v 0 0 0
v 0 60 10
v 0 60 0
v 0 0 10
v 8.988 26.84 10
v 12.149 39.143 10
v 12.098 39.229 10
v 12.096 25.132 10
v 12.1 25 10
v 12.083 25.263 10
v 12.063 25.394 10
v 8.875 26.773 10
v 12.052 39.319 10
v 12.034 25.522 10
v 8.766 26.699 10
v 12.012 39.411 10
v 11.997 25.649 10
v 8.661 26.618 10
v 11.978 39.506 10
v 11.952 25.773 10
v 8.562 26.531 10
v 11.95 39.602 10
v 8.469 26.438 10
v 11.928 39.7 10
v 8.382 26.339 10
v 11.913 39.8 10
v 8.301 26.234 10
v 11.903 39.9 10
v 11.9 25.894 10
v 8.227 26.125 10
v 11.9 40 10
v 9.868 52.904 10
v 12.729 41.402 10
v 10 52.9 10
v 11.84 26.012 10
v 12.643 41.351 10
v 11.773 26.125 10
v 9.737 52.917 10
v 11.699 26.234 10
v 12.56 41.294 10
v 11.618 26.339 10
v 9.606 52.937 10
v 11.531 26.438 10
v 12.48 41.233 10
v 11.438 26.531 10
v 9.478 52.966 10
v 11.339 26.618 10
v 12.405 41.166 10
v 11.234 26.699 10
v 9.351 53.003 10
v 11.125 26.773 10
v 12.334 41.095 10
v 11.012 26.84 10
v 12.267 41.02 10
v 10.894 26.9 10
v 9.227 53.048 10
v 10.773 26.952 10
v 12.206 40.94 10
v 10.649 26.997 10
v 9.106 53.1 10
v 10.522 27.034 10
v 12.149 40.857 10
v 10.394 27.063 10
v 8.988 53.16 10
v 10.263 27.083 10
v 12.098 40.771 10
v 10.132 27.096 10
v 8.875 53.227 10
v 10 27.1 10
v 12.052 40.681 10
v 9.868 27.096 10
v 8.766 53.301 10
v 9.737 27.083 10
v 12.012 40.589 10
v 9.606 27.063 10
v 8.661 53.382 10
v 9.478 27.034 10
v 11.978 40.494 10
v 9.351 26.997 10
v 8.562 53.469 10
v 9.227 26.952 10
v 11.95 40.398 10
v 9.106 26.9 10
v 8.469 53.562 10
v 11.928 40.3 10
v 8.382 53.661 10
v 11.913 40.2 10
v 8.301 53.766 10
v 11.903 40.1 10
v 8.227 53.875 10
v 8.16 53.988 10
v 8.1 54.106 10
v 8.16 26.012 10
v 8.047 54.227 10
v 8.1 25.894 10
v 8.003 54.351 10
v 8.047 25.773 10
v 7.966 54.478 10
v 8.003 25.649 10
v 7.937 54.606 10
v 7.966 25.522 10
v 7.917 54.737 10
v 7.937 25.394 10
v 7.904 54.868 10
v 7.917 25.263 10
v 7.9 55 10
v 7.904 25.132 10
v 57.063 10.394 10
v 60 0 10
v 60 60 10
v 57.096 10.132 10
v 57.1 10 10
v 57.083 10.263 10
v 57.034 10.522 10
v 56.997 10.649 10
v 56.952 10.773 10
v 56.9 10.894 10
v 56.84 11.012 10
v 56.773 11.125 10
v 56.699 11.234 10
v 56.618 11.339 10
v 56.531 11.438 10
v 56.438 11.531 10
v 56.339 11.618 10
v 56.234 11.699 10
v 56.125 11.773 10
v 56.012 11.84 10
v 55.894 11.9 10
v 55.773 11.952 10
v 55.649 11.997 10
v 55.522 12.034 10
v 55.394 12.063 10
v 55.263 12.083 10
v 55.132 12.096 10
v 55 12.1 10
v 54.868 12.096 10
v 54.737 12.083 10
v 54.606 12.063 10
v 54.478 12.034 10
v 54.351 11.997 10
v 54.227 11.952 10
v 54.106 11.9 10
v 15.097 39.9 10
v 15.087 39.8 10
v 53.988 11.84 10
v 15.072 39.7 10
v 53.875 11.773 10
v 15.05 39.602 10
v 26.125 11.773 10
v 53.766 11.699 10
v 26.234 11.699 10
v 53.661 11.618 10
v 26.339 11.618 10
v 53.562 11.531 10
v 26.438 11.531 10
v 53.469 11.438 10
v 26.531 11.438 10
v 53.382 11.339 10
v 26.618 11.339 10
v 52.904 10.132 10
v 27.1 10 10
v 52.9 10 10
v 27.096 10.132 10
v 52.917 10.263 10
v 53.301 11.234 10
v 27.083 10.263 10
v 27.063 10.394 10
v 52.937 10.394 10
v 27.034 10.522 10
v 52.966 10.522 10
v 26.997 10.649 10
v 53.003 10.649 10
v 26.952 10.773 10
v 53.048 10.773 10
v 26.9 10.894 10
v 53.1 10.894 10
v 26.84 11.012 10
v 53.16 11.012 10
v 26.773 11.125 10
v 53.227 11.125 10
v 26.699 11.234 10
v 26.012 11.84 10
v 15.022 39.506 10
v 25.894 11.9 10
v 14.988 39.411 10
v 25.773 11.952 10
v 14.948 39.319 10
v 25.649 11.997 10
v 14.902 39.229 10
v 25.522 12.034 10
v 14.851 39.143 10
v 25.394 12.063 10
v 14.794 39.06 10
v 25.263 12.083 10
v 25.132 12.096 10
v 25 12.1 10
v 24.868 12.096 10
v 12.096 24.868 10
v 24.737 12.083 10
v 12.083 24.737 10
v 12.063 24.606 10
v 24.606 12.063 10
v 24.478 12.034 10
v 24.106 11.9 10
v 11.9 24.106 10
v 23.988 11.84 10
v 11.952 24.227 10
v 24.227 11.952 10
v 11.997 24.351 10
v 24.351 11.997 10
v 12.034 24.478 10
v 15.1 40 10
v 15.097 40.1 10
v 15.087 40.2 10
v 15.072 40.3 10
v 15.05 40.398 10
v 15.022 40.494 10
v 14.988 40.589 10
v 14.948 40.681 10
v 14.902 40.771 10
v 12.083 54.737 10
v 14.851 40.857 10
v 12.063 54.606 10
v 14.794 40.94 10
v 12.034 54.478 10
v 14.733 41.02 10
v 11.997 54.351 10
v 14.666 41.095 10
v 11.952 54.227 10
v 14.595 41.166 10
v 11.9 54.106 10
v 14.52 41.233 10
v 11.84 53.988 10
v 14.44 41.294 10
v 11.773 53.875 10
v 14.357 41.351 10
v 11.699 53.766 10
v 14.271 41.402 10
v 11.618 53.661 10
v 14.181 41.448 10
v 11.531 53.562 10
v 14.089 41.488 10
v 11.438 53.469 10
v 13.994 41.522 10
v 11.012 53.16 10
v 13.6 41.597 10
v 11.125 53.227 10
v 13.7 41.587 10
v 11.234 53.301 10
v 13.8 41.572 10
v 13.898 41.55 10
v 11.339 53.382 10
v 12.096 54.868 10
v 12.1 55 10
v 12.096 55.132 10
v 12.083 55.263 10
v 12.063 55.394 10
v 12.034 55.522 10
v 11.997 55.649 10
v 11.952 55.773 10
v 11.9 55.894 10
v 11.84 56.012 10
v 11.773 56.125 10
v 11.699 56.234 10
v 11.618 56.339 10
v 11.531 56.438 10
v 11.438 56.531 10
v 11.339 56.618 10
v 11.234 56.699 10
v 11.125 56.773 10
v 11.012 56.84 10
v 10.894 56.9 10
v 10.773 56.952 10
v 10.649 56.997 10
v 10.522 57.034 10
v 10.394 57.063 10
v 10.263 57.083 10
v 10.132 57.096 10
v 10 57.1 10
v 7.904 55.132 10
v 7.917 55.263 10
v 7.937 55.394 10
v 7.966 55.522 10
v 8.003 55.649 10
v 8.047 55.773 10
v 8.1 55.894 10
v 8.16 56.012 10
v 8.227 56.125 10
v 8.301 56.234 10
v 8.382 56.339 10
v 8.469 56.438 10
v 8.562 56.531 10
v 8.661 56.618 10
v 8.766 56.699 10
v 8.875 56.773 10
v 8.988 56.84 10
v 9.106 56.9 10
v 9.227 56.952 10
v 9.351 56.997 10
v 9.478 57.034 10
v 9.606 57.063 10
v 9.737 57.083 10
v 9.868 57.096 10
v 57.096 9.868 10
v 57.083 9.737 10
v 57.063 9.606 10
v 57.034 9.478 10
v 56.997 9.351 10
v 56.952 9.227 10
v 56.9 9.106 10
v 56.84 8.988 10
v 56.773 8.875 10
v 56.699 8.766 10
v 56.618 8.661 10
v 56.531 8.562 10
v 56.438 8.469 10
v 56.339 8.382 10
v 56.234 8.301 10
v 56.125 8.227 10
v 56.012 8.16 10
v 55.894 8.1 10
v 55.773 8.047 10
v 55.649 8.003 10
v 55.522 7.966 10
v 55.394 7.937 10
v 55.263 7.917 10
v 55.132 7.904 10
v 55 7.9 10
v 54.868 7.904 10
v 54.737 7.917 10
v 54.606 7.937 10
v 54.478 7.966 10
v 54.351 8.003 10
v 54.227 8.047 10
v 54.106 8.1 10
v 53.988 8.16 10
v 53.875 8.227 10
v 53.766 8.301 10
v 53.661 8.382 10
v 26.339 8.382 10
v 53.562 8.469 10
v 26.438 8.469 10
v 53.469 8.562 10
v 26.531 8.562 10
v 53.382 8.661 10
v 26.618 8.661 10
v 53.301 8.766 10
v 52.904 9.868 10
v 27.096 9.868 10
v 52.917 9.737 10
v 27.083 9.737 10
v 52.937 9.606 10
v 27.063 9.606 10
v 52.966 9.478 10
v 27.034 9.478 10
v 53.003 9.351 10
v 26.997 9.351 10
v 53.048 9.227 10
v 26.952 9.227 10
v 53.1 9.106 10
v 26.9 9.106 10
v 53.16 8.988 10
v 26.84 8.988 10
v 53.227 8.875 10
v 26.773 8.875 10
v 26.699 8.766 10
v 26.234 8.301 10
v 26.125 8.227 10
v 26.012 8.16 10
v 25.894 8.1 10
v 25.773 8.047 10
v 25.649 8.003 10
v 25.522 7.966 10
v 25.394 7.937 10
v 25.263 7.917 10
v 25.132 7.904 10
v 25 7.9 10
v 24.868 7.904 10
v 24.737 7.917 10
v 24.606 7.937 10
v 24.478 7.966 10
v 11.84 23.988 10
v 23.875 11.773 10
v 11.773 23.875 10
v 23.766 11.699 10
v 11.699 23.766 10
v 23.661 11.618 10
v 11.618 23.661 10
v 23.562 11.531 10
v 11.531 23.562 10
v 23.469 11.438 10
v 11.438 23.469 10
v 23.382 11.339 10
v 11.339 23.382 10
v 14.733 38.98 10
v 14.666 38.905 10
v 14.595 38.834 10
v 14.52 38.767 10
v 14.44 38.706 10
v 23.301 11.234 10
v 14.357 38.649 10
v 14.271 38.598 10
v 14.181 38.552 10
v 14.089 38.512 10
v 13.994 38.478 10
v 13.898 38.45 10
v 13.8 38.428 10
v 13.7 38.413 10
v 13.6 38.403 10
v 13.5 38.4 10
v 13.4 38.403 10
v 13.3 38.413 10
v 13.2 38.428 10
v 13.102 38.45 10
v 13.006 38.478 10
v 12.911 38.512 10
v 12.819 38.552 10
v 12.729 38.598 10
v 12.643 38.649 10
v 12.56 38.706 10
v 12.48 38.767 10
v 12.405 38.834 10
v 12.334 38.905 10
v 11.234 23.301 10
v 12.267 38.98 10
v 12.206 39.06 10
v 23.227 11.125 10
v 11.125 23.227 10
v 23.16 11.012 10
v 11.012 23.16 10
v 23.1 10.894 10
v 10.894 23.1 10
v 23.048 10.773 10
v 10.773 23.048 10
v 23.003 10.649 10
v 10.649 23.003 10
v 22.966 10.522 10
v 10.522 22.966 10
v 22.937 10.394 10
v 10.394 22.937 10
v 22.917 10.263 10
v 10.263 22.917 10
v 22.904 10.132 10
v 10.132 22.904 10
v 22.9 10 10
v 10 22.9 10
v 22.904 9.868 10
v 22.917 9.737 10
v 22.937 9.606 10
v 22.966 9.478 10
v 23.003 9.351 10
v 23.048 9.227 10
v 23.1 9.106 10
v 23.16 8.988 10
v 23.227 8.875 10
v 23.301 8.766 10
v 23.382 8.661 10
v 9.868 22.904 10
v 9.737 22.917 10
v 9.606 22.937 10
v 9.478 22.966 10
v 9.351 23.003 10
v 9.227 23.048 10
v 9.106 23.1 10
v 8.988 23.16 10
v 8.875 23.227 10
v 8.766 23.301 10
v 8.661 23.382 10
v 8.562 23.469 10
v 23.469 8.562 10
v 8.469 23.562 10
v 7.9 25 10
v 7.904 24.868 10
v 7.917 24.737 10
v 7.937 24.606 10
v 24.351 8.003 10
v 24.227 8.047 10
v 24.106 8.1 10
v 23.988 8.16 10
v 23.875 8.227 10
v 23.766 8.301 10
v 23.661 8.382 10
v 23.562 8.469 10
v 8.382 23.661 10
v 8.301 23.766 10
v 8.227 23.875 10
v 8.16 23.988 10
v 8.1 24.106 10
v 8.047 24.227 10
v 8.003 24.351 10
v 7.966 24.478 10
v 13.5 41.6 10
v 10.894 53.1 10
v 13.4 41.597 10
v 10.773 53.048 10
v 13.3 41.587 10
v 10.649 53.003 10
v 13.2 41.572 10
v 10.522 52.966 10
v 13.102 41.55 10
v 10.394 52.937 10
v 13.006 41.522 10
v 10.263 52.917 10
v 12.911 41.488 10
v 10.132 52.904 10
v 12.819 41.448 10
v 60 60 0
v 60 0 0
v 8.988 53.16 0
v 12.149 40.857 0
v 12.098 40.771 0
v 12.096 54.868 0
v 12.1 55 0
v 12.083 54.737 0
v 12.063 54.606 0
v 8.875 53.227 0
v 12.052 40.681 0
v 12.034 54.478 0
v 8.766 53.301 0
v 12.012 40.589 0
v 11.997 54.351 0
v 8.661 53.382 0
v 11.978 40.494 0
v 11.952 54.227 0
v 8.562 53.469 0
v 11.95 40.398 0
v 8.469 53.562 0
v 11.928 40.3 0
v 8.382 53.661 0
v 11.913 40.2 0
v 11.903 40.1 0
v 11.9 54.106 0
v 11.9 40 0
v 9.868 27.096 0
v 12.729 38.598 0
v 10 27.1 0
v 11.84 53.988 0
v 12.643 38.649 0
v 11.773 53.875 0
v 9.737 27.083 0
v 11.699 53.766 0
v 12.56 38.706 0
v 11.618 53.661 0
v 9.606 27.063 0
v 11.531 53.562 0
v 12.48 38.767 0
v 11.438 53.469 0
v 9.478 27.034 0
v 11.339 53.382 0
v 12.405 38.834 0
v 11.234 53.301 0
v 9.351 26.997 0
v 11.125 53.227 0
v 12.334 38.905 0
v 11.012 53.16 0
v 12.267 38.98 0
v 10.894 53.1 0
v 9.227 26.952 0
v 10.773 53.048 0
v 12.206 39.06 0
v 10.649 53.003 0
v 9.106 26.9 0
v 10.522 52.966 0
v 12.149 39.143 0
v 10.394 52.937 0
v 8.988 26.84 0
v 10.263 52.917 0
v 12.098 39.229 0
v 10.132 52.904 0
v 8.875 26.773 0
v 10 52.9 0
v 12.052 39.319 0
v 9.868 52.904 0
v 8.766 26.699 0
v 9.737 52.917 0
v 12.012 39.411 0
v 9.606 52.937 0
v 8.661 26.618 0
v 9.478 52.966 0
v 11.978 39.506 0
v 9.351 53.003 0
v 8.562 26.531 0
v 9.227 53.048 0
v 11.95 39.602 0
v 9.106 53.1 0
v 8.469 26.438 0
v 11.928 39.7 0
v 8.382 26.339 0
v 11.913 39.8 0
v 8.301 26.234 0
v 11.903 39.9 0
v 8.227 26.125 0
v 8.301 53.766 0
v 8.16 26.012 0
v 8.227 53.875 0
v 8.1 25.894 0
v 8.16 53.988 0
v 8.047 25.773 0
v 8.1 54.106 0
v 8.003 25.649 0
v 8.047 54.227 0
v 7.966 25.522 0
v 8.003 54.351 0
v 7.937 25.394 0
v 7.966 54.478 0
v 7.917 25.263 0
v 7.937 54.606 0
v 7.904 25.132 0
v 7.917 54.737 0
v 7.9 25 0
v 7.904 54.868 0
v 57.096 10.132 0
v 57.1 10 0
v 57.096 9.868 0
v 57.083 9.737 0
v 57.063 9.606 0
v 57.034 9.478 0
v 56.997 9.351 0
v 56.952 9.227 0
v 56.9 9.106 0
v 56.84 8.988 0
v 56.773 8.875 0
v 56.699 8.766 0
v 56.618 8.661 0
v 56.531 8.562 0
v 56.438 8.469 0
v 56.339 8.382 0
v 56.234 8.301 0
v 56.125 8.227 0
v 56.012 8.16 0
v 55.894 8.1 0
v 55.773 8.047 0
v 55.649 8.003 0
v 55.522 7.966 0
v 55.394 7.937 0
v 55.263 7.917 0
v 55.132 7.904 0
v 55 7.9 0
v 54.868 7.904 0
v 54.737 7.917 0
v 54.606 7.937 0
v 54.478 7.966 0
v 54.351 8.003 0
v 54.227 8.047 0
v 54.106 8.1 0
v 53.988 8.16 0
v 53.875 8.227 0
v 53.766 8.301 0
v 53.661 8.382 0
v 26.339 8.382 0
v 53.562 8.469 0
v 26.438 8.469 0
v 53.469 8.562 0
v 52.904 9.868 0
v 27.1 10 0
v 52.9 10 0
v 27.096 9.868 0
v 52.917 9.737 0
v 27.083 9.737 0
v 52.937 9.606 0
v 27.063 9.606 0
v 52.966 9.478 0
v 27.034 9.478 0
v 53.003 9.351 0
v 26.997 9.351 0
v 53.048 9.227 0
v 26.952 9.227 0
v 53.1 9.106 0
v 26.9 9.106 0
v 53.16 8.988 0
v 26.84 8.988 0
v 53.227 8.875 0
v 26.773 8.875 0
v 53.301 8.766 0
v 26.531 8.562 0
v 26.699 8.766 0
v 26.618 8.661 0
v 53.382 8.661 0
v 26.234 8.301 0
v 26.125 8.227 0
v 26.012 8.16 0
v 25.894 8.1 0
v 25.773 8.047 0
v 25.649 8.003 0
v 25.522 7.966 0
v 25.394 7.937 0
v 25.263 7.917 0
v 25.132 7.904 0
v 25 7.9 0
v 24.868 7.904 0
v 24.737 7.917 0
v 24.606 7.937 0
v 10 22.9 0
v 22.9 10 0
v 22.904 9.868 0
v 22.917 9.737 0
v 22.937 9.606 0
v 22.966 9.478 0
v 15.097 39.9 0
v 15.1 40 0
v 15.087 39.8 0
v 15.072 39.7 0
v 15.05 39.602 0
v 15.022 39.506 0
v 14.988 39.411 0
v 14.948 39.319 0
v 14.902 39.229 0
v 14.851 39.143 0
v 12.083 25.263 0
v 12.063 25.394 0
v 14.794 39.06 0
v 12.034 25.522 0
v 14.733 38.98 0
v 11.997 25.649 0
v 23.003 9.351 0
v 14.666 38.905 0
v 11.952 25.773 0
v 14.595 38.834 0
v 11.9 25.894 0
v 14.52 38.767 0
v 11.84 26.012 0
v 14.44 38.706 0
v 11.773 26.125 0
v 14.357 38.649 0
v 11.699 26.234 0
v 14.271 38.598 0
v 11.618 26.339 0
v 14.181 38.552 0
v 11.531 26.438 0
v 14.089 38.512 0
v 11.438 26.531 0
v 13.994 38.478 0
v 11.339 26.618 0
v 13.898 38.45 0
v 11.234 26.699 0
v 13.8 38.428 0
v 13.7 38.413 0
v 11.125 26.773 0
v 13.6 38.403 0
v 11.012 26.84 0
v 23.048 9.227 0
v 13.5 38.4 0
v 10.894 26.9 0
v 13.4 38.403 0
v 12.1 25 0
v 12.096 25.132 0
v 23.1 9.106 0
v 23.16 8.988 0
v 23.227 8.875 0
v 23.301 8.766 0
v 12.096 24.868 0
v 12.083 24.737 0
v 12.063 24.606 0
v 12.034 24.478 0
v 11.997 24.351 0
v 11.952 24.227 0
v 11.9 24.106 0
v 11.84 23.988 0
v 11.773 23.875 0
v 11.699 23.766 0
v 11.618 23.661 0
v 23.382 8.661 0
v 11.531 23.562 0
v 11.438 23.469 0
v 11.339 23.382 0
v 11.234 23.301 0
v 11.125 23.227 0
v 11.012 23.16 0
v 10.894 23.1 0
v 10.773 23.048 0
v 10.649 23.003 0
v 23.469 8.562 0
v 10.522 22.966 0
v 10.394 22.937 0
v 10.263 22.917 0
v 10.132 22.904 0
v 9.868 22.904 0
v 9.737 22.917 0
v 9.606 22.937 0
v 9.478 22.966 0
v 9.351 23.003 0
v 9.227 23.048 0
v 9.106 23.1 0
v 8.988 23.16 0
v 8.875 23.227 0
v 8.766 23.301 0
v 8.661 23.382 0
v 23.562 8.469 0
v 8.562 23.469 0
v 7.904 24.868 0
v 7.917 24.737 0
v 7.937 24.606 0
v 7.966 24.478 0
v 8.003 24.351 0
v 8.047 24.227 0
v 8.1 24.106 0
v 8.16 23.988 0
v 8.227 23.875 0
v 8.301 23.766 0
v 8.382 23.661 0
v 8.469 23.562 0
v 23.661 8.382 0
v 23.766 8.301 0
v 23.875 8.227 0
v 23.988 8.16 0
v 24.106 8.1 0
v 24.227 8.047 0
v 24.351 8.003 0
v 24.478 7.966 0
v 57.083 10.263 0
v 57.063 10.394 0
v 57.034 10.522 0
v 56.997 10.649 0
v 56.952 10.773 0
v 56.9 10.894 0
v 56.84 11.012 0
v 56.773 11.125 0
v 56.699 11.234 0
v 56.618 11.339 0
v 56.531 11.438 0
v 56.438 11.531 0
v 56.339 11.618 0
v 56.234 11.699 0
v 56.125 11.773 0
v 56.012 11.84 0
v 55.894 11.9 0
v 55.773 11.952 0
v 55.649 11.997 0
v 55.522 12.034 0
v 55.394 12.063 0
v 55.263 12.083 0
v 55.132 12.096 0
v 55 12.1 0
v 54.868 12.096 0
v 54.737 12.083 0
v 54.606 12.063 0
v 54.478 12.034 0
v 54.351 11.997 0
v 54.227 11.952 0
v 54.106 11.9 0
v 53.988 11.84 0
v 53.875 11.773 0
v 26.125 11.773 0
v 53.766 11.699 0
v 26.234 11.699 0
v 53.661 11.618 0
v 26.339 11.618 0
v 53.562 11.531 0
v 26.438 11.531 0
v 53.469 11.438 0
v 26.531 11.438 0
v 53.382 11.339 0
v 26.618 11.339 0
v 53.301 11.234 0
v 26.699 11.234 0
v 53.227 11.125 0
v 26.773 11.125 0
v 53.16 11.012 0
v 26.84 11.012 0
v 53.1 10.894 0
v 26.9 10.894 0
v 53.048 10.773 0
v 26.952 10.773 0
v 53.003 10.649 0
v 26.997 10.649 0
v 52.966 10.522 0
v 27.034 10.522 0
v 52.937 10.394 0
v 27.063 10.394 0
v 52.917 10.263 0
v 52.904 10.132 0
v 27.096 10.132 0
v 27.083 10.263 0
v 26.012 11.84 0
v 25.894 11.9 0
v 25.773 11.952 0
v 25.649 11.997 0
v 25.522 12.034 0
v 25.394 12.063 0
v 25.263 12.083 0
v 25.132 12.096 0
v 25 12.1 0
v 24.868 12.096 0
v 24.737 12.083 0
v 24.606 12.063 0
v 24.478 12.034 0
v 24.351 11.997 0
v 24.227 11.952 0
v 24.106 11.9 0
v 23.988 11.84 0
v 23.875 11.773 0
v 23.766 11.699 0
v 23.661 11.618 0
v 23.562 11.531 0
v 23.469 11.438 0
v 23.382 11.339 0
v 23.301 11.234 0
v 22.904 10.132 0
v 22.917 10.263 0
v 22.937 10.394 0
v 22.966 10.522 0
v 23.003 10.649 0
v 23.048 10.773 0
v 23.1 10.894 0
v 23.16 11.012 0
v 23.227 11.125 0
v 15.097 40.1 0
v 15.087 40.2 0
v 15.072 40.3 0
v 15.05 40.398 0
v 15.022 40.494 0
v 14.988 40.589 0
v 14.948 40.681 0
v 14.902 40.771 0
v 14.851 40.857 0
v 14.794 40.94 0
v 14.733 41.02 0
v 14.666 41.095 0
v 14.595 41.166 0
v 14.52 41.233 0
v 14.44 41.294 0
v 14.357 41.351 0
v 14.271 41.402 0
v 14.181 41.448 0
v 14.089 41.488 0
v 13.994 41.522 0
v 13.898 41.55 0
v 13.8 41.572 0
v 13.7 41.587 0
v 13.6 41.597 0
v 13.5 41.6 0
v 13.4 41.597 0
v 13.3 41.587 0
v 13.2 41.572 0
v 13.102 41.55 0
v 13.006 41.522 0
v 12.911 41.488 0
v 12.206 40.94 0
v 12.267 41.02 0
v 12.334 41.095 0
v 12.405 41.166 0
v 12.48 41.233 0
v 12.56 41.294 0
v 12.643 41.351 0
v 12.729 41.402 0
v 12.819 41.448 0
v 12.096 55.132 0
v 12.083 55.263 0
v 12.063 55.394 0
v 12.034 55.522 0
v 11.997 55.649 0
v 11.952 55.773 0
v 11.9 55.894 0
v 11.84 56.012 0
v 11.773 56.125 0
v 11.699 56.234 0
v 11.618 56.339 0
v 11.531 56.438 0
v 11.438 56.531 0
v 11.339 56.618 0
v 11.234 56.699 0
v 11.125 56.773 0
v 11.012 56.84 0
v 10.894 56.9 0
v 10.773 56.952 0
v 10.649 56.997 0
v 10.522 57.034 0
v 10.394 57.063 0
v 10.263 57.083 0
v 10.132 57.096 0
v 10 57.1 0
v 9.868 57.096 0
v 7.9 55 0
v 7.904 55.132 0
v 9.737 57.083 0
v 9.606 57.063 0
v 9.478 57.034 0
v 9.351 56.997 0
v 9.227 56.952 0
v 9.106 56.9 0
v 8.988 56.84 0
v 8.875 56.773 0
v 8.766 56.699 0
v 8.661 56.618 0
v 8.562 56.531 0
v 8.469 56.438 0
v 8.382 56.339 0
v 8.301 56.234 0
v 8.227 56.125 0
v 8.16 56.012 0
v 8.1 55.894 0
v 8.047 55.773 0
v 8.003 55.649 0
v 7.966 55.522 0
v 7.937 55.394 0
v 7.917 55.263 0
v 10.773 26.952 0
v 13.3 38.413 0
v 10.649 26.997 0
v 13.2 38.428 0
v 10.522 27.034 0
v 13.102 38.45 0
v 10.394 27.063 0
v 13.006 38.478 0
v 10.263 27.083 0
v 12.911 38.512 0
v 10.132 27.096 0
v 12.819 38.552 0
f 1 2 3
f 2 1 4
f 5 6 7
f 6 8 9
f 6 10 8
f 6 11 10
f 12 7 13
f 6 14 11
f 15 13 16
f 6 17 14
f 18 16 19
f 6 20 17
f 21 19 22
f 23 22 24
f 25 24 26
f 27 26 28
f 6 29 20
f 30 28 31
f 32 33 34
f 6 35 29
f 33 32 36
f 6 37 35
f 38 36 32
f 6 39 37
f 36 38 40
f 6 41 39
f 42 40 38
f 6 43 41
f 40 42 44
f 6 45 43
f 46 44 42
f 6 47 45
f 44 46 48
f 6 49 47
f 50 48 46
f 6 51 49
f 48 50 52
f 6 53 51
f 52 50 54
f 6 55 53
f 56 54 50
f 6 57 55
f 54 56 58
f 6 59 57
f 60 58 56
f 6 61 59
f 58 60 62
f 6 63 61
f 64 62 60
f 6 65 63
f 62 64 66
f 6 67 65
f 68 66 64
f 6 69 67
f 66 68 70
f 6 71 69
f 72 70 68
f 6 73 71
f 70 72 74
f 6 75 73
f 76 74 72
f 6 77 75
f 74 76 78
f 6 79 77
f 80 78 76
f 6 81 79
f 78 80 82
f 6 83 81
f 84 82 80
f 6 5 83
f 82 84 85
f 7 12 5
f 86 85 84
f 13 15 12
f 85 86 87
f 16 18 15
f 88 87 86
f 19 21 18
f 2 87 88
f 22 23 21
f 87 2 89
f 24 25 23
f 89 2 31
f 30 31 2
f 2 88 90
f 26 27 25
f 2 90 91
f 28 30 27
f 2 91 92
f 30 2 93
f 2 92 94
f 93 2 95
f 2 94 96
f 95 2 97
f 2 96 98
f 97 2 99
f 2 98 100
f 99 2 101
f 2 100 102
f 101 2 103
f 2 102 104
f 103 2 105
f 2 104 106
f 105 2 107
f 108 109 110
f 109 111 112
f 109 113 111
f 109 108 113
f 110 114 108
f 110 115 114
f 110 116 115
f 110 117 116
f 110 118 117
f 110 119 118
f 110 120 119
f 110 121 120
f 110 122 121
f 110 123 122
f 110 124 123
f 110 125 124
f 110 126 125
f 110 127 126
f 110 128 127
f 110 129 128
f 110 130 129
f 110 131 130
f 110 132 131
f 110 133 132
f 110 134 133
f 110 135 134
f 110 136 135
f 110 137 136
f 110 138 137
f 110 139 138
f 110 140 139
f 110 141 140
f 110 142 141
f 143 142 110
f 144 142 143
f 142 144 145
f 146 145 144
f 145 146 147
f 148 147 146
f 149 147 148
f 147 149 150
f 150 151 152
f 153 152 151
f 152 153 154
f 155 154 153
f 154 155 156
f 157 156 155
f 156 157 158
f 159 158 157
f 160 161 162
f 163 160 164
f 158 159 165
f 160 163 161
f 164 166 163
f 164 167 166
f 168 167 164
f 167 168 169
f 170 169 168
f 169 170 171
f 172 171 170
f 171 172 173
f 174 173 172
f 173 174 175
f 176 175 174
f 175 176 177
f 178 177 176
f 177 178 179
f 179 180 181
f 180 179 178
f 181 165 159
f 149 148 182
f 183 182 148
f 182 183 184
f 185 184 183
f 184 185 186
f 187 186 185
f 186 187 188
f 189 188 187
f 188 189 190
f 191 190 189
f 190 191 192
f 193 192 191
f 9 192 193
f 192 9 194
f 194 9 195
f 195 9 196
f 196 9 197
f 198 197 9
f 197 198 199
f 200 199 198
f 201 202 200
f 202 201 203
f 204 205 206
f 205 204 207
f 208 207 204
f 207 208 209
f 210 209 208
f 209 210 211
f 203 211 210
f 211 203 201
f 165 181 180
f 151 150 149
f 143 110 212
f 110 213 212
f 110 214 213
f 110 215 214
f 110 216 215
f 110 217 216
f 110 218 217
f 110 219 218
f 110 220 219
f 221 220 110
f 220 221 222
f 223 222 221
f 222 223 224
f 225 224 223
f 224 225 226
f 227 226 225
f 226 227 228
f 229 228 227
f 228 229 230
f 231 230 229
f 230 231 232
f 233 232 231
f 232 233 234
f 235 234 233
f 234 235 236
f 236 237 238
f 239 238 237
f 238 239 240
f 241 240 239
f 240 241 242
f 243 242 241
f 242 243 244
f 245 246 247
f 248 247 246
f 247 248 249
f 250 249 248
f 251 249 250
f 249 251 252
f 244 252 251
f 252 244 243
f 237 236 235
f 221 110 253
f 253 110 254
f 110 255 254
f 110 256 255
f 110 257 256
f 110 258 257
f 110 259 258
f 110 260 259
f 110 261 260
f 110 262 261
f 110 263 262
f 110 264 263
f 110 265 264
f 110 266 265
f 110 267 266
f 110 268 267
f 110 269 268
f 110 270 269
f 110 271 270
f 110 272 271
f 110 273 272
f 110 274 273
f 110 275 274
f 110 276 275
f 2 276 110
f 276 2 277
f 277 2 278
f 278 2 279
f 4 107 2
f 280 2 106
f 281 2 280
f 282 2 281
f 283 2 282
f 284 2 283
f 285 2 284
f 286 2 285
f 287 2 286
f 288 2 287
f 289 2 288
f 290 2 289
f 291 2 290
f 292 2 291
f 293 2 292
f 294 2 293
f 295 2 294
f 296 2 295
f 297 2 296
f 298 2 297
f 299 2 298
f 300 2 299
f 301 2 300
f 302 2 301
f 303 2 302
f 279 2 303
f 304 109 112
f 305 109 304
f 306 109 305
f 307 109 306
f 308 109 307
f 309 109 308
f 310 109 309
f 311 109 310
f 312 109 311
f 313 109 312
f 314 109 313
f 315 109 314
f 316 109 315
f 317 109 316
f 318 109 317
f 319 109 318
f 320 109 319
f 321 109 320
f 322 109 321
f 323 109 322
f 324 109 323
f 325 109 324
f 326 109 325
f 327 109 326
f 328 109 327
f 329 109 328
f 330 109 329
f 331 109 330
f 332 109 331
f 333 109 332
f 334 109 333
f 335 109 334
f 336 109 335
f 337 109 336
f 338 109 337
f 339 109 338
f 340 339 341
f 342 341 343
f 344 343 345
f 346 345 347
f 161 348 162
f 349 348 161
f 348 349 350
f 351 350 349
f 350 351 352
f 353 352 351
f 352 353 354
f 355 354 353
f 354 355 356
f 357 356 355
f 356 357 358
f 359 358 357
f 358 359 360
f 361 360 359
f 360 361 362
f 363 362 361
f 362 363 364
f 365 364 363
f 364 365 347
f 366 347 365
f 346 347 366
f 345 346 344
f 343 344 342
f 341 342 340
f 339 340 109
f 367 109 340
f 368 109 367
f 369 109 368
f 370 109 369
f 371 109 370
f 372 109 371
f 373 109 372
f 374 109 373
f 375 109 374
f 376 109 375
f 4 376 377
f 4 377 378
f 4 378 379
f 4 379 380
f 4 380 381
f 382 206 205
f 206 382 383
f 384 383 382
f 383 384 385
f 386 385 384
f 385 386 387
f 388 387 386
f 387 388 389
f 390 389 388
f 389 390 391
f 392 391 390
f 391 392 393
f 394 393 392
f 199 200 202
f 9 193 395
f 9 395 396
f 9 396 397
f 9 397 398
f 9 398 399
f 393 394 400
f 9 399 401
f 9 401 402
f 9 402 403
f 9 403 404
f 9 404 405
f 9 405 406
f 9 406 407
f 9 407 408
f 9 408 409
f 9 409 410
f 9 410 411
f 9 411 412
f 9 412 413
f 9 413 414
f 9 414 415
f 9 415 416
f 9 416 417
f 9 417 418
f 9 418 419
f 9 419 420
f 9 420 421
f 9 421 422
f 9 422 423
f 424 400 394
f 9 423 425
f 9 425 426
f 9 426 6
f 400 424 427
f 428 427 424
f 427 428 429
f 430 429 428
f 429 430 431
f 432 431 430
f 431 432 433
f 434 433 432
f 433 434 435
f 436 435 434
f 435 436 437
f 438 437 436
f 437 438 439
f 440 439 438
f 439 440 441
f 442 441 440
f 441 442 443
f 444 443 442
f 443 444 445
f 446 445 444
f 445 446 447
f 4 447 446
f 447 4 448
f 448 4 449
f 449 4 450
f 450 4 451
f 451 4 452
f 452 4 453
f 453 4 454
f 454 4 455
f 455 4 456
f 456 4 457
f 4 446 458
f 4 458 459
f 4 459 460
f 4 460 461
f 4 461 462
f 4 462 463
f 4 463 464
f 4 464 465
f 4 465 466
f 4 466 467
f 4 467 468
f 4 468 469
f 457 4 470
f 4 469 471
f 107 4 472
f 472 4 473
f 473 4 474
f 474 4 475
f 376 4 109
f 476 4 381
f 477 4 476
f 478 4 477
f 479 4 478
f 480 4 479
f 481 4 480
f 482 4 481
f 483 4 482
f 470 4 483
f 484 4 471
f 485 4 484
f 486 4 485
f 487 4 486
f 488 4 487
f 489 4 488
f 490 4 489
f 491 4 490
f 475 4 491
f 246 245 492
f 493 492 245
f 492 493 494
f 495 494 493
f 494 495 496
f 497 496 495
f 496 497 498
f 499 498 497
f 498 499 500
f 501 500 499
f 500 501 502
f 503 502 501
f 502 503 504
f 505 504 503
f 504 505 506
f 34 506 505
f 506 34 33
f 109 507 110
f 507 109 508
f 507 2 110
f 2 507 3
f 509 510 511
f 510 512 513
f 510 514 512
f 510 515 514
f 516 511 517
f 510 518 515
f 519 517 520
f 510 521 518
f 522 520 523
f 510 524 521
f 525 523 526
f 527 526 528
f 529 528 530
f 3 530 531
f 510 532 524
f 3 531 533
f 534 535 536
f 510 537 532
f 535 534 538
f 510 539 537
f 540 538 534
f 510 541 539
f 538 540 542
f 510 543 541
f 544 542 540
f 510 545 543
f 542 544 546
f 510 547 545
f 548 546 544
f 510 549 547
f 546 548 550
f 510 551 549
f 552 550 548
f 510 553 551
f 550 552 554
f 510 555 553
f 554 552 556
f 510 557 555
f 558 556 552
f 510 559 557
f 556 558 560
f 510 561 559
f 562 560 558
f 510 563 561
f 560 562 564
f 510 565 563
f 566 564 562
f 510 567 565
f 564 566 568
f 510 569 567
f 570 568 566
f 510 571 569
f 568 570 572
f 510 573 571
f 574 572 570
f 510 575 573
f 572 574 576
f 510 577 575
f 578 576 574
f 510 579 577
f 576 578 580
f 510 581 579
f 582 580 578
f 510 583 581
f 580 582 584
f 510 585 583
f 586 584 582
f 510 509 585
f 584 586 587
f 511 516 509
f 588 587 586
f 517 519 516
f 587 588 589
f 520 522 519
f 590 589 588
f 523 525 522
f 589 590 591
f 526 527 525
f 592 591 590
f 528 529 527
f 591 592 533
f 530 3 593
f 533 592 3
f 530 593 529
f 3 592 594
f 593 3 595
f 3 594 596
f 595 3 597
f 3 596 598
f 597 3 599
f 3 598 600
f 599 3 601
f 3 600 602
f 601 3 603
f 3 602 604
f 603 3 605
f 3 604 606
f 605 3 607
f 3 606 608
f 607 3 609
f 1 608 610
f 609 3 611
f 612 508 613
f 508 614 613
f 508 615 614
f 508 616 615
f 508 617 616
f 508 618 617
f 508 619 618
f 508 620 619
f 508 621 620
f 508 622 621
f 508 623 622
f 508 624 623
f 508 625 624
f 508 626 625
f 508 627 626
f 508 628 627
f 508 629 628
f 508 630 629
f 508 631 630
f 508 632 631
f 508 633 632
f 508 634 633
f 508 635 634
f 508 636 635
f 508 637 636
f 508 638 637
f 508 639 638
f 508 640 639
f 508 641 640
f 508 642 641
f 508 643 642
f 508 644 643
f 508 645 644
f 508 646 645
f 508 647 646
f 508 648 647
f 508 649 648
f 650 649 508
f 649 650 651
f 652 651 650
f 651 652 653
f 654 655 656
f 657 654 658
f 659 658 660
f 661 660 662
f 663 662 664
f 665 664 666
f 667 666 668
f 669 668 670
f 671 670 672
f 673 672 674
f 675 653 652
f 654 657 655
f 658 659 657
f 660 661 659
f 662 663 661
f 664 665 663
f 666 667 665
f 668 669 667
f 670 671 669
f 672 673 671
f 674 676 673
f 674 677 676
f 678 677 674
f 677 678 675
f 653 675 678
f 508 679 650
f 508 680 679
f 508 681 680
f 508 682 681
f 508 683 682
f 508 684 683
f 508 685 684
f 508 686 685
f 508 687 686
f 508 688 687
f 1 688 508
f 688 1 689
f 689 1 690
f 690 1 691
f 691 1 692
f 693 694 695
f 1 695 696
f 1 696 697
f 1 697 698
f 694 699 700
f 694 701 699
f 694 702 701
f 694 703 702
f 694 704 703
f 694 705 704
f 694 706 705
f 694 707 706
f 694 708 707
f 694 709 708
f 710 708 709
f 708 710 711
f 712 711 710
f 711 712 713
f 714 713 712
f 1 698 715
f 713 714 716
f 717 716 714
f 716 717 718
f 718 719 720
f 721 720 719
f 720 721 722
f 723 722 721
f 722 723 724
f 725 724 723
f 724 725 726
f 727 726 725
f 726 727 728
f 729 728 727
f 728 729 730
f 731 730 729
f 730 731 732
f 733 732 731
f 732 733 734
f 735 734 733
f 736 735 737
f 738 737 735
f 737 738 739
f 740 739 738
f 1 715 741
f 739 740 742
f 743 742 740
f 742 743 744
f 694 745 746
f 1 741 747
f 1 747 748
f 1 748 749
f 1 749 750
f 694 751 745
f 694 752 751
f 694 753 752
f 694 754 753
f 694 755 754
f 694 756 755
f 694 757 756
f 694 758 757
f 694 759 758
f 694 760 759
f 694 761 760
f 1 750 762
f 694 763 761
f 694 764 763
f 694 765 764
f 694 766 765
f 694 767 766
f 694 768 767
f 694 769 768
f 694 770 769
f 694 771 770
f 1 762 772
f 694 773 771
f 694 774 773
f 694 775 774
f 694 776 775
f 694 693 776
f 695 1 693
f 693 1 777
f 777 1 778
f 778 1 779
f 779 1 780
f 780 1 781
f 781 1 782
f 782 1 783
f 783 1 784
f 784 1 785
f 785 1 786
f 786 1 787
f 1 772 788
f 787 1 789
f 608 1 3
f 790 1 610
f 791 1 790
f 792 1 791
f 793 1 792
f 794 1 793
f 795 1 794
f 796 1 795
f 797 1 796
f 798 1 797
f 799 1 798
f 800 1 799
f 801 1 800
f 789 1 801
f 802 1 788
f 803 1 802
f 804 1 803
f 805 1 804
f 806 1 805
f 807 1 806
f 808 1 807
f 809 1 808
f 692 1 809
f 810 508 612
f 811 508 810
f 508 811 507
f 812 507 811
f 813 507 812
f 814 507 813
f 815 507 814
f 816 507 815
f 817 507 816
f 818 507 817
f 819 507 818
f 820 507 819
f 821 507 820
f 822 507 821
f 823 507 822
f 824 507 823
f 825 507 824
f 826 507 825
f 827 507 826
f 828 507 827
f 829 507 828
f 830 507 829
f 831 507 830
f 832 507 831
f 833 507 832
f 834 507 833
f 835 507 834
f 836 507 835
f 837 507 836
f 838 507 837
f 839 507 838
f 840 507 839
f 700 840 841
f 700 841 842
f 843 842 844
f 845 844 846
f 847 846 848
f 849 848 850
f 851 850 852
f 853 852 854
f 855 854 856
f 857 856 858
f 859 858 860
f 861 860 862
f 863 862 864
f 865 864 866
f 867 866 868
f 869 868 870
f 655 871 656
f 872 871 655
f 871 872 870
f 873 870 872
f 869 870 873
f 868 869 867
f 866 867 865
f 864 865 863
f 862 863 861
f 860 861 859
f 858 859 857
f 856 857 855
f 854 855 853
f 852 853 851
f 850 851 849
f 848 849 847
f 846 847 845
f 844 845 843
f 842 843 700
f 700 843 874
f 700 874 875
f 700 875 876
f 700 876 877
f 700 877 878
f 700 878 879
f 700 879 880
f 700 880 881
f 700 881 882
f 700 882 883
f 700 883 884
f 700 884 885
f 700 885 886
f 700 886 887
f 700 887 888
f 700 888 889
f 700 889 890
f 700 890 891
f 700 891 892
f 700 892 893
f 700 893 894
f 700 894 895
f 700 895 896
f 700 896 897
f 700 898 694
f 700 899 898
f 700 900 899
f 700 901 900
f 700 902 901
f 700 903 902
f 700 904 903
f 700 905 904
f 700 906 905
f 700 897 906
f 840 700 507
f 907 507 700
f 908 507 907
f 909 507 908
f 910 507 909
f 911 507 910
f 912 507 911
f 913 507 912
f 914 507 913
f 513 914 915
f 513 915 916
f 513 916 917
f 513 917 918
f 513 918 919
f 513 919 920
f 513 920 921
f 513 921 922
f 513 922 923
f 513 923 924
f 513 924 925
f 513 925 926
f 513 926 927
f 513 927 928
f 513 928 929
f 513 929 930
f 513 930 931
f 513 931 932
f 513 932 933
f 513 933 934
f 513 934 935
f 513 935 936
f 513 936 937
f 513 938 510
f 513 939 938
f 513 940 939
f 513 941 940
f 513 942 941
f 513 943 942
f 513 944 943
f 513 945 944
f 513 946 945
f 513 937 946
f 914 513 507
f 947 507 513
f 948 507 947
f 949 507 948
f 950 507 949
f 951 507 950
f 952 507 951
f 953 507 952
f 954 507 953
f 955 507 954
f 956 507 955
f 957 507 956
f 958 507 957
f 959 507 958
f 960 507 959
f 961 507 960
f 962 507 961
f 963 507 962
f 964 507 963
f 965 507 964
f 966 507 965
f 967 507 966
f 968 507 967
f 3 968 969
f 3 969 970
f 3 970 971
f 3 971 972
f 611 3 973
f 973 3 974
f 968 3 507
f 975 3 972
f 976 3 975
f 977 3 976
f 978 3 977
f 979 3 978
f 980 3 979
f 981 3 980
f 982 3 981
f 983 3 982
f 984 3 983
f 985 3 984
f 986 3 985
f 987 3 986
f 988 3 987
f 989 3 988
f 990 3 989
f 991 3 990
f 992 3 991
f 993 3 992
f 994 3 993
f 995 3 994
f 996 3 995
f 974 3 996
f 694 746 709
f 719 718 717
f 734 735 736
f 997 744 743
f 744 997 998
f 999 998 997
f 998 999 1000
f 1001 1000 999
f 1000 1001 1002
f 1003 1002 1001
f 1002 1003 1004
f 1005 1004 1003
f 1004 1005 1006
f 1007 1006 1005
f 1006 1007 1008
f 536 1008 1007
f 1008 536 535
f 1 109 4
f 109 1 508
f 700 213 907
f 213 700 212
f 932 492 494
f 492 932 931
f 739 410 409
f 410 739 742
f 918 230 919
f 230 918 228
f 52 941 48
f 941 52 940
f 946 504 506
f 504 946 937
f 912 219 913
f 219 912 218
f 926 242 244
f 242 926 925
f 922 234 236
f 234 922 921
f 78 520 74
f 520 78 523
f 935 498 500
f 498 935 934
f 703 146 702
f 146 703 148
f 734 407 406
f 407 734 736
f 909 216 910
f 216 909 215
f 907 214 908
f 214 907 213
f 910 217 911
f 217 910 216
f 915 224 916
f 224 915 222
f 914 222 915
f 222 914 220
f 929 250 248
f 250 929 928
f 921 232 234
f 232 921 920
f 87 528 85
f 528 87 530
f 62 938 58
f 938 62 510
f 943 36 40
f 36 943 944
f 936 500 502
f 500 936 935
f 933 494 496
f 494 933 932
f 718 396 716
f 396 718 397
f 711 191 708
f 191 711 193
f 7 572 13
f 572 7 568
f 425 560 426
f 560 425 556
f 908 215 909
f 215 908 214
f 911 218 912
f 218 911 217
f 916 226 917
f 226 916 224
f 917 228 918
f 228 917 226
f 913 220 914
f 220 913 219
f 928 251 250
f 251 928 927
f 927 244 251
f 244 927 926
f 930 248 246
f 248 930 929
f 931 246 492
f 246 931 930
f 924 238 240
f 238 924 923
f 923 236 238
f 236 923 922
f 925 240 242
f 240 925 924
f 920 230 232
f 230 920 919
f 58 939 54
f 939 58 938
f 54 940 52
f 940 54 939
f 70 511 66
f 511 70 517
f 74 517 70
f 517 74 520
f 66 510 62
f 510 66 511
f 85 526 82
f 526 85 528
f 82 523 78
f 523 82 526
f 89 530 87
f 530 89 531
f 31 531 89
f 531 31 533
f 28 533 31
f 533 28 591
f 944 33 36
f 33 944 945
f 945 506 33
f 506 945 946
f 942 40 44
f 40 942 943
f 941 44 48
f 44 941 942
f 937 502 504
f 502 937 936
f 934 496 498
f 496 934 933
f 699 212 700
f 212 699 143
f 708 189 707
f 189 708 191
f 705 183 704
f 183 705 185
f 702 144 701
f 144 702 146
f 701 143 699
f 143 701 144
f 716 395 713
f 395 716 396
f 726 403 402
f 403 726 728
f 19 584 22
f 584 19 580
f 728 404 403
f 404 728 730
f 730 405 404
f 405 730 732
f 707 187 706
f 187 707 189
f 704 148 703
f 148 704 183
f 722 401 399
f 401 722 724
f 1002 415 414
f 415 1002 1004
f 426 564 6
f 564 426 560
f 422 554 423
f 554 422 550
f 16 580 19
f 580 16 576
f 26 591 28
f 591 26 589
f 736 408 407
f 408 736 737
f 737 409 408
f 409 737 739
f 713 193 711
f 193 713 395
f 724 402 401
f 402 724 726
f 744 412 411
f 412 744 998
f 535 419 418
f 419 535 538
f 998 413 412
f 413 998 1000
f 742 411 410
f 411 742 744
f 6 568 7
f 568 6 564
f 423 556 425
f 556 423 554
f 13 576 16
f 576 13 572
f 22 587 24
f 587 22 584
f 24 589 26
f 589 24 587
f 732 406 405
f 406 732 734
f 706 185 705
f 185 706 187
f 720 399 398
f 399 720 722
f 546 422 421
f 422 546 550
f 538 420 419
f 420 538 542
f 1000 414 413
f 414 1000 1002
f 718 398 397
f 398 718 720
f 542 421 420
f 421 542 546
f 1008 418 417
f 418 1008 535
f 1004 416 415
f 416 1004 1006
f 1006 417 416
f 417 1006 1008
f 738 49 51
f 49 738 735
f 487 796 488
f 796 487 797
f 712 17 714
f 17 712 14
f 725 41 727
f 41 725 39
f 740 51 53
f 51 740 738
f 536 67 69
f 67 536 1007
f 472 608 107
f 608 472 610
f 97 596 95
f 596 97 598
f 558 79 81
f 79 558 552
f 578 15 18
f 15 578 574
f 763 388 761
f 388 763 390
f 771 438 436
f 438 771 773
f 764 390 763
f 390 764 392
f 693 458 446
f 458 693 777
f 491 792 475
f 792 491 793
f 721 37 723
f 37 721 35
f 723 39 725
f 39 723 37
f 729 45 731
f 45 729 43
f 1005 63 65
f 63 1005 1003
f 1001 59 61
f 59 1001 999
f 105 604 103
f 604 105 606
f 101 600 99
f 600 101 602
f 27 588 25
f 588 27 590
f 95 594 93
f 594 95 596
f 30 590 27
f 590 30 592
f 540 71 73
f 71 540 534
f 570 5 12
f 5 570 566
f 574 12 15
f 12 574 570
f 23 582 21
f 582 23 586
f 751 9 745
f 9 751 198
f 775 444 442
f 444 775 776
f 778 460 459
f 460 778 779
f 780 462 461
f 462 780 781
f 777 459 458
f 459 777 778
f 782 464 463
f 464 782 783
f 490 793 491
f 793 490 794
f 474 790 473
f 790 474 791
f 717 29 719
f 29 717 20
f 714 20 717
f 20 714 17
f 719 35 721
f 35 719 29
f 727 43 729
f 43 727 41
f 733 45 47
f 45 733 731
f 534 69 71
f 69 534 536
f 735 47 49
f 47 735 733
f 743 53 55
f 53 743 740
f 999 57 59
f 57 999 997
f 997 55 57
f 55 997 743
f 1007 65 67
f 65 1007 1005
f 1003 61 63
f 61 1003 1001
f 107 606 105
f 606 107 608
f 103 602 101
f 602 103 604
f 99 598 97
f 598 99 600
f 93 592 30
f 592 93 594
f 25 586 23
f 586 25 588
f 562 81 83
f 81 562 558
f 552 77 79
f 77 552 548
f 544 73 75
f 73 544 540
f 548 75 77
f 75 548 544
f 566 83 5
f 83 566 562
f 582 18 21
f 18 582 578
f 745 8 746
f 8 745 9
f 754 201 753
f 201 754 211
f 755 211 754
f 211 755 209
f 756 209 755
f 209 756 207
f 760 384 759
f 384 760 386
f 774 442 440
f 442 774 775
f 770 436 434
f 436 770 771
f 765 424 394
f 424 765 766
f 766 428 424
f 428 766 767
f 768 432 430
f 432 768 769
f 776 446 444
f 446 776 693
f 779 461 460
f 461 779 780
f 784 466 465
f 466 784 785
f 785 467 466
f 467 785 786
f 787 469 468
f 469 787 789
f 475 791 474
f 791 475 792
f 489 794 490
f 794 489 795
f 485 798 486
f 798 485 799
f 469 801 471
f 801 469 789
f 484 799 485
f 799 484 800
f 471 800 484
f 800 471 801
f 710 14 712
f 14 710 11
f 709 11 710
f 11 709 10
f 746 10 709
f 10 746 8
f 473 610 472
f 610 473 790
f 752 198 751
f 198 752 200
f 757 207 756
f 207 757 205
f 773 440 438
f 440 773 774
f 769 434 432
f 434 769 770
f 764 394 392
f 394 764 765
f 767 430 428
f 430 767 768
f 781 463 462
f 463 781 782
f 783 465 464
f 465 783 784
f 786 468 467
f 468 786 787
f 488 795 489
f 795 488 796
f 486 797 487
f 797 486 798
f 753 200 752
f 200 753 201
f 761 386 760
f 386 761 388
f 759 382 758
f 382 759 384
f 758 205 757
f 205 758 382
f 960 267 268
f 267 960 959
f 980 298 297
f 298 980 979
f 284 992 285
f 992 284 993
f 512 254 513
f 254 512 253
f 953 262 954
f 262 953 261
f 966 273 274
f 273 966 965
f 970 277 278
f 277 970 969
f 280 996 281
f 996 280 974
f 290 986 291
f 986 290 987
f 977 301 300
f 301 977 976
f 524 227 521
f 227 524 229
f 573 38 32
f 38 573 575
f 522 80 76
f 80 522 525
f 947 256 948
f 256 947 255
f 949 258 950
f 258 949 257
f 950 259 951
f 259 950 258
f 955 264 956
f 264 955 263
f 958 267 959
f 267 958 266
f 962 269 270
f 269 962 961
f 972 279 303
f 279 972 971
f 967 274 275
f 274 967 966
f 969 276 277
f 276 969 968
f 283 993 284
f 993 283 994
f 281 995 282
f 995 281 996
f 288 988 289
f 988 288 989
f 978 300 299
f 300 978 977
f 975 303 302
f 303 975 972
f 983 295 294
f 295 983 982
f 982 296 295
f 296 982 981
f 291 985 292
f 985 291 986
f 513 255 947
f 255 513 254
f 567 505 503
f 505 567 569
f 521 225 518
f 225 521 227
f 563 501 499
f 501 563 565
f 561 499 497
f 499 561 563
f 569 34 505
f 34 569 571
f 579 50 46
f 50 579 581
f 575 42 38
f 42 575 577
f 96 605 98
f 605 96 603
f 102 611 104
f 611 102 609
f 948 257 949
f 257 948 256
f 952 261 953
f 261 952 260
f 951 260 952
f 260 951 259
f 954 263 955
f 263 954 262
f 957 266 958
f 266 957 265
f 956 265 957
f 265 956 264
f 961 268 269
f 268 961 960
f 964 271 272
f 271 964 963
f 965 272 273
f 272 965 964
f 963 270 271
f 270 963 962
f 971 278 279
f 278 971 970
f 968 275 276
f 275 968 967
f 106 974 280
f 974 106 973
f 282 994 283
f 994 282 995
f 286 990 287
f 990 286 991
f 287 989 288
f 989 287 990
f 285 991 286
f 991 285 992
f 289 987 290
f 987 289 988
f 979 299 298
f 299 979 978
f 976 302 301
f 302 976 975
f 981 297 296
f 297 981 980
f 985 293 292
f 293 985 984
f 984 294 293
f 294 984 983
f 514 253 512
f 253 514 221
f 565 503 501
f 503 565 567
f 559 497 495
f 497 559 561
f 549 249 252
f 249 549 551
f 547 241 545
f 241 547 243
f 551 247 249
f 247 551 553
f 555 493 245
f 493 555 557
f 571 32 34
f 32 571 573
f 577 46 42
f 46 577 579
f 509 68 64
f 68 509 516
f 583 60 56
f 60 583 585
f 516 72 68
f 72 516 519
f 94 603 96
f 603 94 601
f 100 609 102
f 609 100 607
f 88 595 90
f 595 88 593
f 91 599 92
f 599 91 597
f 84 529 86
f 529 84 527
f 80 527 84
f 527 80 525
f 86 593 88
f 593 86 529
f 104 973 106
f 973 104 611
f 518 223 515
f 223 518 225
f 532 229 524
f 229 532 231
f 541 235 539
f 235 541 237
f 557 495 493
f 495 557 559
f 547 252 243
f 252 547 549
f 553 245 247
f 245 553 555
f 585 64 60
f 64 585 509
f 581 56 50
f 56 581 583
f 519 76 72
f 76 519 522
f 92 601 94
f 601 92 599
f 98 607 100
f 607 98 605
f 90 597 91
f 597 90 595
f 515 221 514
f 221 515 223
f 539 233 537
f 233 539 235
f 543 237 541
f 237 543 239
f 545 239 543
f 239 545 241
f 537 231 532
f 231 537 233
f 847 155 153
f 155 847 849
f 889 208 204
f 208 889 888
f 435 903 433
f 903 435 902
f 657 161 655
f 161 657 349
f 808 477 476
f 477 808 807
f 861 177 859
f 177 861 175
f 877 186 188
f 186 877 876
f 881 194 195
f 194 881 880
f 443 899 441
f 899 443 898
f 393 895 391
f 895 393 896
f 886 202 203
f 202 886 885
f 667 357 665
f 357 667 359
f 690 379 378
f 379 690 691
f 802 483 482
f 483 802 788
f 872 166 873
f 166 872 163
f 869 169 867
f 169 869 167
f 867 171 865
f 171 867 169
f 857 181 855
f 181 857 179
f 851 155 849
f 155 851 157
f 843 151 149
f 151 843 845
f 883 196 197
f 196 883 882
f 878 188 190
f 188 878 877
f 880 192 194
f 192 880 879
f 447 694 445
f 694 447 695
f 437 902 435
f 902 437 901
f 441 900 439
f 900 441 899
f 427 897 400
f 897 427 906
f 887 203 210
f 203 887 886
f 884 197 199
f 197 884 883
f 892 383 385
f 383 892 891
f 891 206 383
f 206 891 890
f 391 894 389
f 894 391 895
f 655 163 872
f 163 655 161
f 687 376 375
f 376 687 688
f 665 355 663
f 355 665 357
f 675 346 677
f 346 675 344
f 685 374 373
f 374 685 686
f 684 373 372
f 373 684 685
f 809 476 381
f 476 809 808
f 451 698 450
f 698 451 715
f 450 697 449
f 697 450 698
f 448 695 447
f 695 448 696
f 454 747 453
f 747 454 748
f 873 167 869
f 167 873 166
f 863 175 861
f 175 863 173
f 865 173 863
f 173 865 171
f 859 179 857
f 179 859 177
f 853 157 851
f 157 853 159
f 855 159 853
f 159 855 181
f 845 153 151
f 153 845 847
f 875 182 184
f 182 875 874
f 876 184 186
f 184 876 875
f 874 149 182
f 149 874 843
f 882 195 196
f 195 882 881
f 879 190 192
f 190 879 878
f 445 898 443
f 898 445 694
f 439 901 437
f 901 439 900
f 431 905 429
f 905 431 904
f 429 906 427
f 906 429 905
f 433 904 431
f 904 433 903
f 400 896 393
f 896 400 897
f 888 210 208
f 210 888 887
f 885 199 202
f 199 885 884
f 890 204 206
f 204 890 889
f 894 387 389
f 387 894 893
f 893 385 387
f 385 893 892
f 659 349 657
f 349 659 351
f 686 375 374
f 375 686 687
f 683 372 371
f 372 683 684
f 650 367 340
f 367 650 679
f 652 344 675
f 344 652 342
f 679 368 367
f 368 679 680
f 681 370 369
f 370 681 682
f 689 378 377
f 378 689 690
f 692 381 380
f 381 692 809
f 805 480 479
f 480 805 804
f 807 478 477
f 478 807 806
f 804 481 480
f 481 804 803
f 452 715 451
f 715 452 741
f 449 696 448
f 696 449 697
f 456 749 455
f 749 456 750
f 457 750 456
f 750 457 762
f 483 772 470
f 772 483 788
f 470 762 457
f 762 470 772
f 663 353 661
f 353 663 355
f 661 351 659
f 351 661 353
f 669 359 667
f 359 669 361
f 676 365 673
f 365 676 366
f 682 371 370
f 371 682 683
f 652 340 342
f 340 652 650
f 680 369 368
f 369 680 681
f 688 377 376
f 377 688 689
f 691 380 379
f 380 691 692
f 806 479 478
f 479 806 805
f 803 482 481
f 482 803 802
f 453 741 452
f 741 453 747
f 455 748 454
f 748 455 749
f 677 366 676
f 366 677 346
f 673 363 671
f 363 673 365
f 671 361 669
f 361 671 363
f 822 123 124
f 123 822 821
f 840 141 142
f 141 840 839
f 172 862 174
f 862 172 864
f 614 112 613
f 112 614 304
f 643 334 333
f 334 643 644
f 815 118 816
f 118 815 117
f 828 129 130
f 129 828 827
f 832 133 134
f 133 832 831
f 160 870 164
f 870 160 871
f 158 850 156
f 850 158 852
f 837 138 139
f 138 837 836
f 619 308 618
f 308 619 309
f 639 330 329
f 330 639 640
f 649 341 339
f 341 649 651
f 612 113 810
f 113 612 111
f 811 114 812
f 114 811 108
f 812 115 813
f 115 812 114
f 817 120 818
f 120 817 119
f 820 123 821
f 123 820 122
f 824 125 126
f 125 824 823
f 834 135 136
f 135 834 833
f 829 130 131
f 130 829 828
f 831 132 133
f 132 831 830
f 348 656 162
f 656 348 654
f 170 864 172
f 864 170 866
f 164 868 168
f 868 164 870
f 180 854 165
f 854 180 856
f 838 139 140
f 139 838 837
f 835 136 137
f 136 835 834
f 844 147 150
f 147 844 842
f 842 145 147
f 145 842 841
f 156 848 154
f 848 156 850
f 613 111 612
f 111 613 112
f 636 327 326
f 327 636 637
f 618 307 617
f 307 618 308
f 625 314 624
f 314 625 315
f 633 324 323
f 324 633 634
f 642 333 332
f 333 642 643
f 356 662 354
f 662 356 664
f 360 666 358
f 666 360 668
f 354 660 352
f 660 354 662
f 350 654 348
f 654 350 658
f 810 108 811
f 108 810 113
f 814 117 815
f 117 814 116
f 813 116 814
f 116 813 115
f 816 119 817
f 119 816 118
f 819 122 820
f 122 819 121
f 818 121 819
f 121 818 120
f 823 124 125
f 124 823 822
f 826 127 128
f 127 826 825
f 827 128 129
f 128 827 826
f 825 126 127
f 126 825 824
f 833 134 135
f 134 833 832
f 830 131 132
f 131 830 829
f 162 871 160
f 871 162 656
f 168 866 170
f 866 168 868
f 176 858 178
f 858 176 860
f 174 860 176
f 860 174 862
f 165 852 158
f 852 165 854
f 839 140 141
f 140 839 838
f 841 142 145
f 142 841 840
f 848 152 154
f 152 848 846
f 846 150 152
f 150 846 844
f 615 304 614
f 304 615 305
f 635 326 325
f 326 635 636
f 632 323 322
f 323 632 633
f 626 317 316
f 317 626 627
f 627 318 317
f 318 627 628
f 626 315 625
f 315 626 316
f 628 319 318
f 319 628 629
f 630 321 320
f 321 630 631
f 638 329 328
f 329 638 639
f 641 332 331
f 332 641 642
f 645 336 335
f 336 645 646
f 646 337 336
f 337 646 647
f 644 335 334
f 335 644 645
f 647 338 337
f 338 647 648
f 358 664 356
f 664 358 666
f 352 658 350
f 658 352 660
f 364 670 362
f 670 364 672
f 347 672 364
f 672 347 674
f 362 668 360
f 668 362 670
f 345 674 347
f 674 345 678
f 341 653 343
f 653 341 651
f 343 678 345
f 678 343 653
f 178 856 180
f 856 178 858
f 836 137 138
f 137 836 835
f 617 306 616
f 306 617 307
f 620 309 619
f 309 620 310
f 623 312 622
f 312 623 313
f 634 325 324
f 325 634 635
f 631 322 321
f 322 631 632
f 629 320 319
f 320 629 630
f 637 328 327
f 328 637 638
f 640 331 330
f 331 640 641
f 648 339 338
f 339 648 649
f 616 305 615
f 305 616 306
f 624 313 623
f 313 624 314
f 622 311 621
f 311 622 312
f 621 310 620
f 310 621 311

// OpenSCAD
b_in_r=3.98;
hole_r=1.6;
hole_m_r=2.1;

$fn=100;

module 608_bearing(){
    difference(){
        cylinder(r=12, h=30);
        cylinder(r=b_in_r, h=30);
        cylinder(r=6,h=0.5);
        //translate([0,0,7.5])cylinder(r=6,h=0.5);
        }
        translate([0,0,-10])cylinder(r=hole_r, h=30);
}

module slice_pie(r=10,a=10, h=10){
    difference(){
      cylinder(r=r, h=h);
      translate([-r,0,0])cube([r*2,r,h]);
        rotate([0,0,180-a])translate([-r,0,0])cube([r*2,r,h]);
      cylinder(r=6,h=h);
    }
}

module m3_hole(){
    cylinder(r=3.2, h=3, $fn=6);
    }

module belt_idler_2(){    
difference(){
cube([60,60,10]);
//cube([20,20,50]);
//    translate([13.5,20,1])608_bearing();
//    translate([13.5,20,1])rotate([0,0,-20])slice_pie(r=13,a=180,h=10);
    translate([13.5,40,0])cylinder(r=hole_r, h=20);
        //translate([13.5,40,0])m3_hole();

//translate([0,20,1])cube([3,100,10]);
    translate([10,25,0])cylinder(r=hole_m_r,h=20);
    translate([10,55,0])cylinder(r=hole_m_r,h=20);
    translate([25,10,0])cylinder(r=hole_m_r,h=20);
    translate([55,10,0])cylinder(r=hole_m_r,h=20);
}
}

belt_idler_2();
